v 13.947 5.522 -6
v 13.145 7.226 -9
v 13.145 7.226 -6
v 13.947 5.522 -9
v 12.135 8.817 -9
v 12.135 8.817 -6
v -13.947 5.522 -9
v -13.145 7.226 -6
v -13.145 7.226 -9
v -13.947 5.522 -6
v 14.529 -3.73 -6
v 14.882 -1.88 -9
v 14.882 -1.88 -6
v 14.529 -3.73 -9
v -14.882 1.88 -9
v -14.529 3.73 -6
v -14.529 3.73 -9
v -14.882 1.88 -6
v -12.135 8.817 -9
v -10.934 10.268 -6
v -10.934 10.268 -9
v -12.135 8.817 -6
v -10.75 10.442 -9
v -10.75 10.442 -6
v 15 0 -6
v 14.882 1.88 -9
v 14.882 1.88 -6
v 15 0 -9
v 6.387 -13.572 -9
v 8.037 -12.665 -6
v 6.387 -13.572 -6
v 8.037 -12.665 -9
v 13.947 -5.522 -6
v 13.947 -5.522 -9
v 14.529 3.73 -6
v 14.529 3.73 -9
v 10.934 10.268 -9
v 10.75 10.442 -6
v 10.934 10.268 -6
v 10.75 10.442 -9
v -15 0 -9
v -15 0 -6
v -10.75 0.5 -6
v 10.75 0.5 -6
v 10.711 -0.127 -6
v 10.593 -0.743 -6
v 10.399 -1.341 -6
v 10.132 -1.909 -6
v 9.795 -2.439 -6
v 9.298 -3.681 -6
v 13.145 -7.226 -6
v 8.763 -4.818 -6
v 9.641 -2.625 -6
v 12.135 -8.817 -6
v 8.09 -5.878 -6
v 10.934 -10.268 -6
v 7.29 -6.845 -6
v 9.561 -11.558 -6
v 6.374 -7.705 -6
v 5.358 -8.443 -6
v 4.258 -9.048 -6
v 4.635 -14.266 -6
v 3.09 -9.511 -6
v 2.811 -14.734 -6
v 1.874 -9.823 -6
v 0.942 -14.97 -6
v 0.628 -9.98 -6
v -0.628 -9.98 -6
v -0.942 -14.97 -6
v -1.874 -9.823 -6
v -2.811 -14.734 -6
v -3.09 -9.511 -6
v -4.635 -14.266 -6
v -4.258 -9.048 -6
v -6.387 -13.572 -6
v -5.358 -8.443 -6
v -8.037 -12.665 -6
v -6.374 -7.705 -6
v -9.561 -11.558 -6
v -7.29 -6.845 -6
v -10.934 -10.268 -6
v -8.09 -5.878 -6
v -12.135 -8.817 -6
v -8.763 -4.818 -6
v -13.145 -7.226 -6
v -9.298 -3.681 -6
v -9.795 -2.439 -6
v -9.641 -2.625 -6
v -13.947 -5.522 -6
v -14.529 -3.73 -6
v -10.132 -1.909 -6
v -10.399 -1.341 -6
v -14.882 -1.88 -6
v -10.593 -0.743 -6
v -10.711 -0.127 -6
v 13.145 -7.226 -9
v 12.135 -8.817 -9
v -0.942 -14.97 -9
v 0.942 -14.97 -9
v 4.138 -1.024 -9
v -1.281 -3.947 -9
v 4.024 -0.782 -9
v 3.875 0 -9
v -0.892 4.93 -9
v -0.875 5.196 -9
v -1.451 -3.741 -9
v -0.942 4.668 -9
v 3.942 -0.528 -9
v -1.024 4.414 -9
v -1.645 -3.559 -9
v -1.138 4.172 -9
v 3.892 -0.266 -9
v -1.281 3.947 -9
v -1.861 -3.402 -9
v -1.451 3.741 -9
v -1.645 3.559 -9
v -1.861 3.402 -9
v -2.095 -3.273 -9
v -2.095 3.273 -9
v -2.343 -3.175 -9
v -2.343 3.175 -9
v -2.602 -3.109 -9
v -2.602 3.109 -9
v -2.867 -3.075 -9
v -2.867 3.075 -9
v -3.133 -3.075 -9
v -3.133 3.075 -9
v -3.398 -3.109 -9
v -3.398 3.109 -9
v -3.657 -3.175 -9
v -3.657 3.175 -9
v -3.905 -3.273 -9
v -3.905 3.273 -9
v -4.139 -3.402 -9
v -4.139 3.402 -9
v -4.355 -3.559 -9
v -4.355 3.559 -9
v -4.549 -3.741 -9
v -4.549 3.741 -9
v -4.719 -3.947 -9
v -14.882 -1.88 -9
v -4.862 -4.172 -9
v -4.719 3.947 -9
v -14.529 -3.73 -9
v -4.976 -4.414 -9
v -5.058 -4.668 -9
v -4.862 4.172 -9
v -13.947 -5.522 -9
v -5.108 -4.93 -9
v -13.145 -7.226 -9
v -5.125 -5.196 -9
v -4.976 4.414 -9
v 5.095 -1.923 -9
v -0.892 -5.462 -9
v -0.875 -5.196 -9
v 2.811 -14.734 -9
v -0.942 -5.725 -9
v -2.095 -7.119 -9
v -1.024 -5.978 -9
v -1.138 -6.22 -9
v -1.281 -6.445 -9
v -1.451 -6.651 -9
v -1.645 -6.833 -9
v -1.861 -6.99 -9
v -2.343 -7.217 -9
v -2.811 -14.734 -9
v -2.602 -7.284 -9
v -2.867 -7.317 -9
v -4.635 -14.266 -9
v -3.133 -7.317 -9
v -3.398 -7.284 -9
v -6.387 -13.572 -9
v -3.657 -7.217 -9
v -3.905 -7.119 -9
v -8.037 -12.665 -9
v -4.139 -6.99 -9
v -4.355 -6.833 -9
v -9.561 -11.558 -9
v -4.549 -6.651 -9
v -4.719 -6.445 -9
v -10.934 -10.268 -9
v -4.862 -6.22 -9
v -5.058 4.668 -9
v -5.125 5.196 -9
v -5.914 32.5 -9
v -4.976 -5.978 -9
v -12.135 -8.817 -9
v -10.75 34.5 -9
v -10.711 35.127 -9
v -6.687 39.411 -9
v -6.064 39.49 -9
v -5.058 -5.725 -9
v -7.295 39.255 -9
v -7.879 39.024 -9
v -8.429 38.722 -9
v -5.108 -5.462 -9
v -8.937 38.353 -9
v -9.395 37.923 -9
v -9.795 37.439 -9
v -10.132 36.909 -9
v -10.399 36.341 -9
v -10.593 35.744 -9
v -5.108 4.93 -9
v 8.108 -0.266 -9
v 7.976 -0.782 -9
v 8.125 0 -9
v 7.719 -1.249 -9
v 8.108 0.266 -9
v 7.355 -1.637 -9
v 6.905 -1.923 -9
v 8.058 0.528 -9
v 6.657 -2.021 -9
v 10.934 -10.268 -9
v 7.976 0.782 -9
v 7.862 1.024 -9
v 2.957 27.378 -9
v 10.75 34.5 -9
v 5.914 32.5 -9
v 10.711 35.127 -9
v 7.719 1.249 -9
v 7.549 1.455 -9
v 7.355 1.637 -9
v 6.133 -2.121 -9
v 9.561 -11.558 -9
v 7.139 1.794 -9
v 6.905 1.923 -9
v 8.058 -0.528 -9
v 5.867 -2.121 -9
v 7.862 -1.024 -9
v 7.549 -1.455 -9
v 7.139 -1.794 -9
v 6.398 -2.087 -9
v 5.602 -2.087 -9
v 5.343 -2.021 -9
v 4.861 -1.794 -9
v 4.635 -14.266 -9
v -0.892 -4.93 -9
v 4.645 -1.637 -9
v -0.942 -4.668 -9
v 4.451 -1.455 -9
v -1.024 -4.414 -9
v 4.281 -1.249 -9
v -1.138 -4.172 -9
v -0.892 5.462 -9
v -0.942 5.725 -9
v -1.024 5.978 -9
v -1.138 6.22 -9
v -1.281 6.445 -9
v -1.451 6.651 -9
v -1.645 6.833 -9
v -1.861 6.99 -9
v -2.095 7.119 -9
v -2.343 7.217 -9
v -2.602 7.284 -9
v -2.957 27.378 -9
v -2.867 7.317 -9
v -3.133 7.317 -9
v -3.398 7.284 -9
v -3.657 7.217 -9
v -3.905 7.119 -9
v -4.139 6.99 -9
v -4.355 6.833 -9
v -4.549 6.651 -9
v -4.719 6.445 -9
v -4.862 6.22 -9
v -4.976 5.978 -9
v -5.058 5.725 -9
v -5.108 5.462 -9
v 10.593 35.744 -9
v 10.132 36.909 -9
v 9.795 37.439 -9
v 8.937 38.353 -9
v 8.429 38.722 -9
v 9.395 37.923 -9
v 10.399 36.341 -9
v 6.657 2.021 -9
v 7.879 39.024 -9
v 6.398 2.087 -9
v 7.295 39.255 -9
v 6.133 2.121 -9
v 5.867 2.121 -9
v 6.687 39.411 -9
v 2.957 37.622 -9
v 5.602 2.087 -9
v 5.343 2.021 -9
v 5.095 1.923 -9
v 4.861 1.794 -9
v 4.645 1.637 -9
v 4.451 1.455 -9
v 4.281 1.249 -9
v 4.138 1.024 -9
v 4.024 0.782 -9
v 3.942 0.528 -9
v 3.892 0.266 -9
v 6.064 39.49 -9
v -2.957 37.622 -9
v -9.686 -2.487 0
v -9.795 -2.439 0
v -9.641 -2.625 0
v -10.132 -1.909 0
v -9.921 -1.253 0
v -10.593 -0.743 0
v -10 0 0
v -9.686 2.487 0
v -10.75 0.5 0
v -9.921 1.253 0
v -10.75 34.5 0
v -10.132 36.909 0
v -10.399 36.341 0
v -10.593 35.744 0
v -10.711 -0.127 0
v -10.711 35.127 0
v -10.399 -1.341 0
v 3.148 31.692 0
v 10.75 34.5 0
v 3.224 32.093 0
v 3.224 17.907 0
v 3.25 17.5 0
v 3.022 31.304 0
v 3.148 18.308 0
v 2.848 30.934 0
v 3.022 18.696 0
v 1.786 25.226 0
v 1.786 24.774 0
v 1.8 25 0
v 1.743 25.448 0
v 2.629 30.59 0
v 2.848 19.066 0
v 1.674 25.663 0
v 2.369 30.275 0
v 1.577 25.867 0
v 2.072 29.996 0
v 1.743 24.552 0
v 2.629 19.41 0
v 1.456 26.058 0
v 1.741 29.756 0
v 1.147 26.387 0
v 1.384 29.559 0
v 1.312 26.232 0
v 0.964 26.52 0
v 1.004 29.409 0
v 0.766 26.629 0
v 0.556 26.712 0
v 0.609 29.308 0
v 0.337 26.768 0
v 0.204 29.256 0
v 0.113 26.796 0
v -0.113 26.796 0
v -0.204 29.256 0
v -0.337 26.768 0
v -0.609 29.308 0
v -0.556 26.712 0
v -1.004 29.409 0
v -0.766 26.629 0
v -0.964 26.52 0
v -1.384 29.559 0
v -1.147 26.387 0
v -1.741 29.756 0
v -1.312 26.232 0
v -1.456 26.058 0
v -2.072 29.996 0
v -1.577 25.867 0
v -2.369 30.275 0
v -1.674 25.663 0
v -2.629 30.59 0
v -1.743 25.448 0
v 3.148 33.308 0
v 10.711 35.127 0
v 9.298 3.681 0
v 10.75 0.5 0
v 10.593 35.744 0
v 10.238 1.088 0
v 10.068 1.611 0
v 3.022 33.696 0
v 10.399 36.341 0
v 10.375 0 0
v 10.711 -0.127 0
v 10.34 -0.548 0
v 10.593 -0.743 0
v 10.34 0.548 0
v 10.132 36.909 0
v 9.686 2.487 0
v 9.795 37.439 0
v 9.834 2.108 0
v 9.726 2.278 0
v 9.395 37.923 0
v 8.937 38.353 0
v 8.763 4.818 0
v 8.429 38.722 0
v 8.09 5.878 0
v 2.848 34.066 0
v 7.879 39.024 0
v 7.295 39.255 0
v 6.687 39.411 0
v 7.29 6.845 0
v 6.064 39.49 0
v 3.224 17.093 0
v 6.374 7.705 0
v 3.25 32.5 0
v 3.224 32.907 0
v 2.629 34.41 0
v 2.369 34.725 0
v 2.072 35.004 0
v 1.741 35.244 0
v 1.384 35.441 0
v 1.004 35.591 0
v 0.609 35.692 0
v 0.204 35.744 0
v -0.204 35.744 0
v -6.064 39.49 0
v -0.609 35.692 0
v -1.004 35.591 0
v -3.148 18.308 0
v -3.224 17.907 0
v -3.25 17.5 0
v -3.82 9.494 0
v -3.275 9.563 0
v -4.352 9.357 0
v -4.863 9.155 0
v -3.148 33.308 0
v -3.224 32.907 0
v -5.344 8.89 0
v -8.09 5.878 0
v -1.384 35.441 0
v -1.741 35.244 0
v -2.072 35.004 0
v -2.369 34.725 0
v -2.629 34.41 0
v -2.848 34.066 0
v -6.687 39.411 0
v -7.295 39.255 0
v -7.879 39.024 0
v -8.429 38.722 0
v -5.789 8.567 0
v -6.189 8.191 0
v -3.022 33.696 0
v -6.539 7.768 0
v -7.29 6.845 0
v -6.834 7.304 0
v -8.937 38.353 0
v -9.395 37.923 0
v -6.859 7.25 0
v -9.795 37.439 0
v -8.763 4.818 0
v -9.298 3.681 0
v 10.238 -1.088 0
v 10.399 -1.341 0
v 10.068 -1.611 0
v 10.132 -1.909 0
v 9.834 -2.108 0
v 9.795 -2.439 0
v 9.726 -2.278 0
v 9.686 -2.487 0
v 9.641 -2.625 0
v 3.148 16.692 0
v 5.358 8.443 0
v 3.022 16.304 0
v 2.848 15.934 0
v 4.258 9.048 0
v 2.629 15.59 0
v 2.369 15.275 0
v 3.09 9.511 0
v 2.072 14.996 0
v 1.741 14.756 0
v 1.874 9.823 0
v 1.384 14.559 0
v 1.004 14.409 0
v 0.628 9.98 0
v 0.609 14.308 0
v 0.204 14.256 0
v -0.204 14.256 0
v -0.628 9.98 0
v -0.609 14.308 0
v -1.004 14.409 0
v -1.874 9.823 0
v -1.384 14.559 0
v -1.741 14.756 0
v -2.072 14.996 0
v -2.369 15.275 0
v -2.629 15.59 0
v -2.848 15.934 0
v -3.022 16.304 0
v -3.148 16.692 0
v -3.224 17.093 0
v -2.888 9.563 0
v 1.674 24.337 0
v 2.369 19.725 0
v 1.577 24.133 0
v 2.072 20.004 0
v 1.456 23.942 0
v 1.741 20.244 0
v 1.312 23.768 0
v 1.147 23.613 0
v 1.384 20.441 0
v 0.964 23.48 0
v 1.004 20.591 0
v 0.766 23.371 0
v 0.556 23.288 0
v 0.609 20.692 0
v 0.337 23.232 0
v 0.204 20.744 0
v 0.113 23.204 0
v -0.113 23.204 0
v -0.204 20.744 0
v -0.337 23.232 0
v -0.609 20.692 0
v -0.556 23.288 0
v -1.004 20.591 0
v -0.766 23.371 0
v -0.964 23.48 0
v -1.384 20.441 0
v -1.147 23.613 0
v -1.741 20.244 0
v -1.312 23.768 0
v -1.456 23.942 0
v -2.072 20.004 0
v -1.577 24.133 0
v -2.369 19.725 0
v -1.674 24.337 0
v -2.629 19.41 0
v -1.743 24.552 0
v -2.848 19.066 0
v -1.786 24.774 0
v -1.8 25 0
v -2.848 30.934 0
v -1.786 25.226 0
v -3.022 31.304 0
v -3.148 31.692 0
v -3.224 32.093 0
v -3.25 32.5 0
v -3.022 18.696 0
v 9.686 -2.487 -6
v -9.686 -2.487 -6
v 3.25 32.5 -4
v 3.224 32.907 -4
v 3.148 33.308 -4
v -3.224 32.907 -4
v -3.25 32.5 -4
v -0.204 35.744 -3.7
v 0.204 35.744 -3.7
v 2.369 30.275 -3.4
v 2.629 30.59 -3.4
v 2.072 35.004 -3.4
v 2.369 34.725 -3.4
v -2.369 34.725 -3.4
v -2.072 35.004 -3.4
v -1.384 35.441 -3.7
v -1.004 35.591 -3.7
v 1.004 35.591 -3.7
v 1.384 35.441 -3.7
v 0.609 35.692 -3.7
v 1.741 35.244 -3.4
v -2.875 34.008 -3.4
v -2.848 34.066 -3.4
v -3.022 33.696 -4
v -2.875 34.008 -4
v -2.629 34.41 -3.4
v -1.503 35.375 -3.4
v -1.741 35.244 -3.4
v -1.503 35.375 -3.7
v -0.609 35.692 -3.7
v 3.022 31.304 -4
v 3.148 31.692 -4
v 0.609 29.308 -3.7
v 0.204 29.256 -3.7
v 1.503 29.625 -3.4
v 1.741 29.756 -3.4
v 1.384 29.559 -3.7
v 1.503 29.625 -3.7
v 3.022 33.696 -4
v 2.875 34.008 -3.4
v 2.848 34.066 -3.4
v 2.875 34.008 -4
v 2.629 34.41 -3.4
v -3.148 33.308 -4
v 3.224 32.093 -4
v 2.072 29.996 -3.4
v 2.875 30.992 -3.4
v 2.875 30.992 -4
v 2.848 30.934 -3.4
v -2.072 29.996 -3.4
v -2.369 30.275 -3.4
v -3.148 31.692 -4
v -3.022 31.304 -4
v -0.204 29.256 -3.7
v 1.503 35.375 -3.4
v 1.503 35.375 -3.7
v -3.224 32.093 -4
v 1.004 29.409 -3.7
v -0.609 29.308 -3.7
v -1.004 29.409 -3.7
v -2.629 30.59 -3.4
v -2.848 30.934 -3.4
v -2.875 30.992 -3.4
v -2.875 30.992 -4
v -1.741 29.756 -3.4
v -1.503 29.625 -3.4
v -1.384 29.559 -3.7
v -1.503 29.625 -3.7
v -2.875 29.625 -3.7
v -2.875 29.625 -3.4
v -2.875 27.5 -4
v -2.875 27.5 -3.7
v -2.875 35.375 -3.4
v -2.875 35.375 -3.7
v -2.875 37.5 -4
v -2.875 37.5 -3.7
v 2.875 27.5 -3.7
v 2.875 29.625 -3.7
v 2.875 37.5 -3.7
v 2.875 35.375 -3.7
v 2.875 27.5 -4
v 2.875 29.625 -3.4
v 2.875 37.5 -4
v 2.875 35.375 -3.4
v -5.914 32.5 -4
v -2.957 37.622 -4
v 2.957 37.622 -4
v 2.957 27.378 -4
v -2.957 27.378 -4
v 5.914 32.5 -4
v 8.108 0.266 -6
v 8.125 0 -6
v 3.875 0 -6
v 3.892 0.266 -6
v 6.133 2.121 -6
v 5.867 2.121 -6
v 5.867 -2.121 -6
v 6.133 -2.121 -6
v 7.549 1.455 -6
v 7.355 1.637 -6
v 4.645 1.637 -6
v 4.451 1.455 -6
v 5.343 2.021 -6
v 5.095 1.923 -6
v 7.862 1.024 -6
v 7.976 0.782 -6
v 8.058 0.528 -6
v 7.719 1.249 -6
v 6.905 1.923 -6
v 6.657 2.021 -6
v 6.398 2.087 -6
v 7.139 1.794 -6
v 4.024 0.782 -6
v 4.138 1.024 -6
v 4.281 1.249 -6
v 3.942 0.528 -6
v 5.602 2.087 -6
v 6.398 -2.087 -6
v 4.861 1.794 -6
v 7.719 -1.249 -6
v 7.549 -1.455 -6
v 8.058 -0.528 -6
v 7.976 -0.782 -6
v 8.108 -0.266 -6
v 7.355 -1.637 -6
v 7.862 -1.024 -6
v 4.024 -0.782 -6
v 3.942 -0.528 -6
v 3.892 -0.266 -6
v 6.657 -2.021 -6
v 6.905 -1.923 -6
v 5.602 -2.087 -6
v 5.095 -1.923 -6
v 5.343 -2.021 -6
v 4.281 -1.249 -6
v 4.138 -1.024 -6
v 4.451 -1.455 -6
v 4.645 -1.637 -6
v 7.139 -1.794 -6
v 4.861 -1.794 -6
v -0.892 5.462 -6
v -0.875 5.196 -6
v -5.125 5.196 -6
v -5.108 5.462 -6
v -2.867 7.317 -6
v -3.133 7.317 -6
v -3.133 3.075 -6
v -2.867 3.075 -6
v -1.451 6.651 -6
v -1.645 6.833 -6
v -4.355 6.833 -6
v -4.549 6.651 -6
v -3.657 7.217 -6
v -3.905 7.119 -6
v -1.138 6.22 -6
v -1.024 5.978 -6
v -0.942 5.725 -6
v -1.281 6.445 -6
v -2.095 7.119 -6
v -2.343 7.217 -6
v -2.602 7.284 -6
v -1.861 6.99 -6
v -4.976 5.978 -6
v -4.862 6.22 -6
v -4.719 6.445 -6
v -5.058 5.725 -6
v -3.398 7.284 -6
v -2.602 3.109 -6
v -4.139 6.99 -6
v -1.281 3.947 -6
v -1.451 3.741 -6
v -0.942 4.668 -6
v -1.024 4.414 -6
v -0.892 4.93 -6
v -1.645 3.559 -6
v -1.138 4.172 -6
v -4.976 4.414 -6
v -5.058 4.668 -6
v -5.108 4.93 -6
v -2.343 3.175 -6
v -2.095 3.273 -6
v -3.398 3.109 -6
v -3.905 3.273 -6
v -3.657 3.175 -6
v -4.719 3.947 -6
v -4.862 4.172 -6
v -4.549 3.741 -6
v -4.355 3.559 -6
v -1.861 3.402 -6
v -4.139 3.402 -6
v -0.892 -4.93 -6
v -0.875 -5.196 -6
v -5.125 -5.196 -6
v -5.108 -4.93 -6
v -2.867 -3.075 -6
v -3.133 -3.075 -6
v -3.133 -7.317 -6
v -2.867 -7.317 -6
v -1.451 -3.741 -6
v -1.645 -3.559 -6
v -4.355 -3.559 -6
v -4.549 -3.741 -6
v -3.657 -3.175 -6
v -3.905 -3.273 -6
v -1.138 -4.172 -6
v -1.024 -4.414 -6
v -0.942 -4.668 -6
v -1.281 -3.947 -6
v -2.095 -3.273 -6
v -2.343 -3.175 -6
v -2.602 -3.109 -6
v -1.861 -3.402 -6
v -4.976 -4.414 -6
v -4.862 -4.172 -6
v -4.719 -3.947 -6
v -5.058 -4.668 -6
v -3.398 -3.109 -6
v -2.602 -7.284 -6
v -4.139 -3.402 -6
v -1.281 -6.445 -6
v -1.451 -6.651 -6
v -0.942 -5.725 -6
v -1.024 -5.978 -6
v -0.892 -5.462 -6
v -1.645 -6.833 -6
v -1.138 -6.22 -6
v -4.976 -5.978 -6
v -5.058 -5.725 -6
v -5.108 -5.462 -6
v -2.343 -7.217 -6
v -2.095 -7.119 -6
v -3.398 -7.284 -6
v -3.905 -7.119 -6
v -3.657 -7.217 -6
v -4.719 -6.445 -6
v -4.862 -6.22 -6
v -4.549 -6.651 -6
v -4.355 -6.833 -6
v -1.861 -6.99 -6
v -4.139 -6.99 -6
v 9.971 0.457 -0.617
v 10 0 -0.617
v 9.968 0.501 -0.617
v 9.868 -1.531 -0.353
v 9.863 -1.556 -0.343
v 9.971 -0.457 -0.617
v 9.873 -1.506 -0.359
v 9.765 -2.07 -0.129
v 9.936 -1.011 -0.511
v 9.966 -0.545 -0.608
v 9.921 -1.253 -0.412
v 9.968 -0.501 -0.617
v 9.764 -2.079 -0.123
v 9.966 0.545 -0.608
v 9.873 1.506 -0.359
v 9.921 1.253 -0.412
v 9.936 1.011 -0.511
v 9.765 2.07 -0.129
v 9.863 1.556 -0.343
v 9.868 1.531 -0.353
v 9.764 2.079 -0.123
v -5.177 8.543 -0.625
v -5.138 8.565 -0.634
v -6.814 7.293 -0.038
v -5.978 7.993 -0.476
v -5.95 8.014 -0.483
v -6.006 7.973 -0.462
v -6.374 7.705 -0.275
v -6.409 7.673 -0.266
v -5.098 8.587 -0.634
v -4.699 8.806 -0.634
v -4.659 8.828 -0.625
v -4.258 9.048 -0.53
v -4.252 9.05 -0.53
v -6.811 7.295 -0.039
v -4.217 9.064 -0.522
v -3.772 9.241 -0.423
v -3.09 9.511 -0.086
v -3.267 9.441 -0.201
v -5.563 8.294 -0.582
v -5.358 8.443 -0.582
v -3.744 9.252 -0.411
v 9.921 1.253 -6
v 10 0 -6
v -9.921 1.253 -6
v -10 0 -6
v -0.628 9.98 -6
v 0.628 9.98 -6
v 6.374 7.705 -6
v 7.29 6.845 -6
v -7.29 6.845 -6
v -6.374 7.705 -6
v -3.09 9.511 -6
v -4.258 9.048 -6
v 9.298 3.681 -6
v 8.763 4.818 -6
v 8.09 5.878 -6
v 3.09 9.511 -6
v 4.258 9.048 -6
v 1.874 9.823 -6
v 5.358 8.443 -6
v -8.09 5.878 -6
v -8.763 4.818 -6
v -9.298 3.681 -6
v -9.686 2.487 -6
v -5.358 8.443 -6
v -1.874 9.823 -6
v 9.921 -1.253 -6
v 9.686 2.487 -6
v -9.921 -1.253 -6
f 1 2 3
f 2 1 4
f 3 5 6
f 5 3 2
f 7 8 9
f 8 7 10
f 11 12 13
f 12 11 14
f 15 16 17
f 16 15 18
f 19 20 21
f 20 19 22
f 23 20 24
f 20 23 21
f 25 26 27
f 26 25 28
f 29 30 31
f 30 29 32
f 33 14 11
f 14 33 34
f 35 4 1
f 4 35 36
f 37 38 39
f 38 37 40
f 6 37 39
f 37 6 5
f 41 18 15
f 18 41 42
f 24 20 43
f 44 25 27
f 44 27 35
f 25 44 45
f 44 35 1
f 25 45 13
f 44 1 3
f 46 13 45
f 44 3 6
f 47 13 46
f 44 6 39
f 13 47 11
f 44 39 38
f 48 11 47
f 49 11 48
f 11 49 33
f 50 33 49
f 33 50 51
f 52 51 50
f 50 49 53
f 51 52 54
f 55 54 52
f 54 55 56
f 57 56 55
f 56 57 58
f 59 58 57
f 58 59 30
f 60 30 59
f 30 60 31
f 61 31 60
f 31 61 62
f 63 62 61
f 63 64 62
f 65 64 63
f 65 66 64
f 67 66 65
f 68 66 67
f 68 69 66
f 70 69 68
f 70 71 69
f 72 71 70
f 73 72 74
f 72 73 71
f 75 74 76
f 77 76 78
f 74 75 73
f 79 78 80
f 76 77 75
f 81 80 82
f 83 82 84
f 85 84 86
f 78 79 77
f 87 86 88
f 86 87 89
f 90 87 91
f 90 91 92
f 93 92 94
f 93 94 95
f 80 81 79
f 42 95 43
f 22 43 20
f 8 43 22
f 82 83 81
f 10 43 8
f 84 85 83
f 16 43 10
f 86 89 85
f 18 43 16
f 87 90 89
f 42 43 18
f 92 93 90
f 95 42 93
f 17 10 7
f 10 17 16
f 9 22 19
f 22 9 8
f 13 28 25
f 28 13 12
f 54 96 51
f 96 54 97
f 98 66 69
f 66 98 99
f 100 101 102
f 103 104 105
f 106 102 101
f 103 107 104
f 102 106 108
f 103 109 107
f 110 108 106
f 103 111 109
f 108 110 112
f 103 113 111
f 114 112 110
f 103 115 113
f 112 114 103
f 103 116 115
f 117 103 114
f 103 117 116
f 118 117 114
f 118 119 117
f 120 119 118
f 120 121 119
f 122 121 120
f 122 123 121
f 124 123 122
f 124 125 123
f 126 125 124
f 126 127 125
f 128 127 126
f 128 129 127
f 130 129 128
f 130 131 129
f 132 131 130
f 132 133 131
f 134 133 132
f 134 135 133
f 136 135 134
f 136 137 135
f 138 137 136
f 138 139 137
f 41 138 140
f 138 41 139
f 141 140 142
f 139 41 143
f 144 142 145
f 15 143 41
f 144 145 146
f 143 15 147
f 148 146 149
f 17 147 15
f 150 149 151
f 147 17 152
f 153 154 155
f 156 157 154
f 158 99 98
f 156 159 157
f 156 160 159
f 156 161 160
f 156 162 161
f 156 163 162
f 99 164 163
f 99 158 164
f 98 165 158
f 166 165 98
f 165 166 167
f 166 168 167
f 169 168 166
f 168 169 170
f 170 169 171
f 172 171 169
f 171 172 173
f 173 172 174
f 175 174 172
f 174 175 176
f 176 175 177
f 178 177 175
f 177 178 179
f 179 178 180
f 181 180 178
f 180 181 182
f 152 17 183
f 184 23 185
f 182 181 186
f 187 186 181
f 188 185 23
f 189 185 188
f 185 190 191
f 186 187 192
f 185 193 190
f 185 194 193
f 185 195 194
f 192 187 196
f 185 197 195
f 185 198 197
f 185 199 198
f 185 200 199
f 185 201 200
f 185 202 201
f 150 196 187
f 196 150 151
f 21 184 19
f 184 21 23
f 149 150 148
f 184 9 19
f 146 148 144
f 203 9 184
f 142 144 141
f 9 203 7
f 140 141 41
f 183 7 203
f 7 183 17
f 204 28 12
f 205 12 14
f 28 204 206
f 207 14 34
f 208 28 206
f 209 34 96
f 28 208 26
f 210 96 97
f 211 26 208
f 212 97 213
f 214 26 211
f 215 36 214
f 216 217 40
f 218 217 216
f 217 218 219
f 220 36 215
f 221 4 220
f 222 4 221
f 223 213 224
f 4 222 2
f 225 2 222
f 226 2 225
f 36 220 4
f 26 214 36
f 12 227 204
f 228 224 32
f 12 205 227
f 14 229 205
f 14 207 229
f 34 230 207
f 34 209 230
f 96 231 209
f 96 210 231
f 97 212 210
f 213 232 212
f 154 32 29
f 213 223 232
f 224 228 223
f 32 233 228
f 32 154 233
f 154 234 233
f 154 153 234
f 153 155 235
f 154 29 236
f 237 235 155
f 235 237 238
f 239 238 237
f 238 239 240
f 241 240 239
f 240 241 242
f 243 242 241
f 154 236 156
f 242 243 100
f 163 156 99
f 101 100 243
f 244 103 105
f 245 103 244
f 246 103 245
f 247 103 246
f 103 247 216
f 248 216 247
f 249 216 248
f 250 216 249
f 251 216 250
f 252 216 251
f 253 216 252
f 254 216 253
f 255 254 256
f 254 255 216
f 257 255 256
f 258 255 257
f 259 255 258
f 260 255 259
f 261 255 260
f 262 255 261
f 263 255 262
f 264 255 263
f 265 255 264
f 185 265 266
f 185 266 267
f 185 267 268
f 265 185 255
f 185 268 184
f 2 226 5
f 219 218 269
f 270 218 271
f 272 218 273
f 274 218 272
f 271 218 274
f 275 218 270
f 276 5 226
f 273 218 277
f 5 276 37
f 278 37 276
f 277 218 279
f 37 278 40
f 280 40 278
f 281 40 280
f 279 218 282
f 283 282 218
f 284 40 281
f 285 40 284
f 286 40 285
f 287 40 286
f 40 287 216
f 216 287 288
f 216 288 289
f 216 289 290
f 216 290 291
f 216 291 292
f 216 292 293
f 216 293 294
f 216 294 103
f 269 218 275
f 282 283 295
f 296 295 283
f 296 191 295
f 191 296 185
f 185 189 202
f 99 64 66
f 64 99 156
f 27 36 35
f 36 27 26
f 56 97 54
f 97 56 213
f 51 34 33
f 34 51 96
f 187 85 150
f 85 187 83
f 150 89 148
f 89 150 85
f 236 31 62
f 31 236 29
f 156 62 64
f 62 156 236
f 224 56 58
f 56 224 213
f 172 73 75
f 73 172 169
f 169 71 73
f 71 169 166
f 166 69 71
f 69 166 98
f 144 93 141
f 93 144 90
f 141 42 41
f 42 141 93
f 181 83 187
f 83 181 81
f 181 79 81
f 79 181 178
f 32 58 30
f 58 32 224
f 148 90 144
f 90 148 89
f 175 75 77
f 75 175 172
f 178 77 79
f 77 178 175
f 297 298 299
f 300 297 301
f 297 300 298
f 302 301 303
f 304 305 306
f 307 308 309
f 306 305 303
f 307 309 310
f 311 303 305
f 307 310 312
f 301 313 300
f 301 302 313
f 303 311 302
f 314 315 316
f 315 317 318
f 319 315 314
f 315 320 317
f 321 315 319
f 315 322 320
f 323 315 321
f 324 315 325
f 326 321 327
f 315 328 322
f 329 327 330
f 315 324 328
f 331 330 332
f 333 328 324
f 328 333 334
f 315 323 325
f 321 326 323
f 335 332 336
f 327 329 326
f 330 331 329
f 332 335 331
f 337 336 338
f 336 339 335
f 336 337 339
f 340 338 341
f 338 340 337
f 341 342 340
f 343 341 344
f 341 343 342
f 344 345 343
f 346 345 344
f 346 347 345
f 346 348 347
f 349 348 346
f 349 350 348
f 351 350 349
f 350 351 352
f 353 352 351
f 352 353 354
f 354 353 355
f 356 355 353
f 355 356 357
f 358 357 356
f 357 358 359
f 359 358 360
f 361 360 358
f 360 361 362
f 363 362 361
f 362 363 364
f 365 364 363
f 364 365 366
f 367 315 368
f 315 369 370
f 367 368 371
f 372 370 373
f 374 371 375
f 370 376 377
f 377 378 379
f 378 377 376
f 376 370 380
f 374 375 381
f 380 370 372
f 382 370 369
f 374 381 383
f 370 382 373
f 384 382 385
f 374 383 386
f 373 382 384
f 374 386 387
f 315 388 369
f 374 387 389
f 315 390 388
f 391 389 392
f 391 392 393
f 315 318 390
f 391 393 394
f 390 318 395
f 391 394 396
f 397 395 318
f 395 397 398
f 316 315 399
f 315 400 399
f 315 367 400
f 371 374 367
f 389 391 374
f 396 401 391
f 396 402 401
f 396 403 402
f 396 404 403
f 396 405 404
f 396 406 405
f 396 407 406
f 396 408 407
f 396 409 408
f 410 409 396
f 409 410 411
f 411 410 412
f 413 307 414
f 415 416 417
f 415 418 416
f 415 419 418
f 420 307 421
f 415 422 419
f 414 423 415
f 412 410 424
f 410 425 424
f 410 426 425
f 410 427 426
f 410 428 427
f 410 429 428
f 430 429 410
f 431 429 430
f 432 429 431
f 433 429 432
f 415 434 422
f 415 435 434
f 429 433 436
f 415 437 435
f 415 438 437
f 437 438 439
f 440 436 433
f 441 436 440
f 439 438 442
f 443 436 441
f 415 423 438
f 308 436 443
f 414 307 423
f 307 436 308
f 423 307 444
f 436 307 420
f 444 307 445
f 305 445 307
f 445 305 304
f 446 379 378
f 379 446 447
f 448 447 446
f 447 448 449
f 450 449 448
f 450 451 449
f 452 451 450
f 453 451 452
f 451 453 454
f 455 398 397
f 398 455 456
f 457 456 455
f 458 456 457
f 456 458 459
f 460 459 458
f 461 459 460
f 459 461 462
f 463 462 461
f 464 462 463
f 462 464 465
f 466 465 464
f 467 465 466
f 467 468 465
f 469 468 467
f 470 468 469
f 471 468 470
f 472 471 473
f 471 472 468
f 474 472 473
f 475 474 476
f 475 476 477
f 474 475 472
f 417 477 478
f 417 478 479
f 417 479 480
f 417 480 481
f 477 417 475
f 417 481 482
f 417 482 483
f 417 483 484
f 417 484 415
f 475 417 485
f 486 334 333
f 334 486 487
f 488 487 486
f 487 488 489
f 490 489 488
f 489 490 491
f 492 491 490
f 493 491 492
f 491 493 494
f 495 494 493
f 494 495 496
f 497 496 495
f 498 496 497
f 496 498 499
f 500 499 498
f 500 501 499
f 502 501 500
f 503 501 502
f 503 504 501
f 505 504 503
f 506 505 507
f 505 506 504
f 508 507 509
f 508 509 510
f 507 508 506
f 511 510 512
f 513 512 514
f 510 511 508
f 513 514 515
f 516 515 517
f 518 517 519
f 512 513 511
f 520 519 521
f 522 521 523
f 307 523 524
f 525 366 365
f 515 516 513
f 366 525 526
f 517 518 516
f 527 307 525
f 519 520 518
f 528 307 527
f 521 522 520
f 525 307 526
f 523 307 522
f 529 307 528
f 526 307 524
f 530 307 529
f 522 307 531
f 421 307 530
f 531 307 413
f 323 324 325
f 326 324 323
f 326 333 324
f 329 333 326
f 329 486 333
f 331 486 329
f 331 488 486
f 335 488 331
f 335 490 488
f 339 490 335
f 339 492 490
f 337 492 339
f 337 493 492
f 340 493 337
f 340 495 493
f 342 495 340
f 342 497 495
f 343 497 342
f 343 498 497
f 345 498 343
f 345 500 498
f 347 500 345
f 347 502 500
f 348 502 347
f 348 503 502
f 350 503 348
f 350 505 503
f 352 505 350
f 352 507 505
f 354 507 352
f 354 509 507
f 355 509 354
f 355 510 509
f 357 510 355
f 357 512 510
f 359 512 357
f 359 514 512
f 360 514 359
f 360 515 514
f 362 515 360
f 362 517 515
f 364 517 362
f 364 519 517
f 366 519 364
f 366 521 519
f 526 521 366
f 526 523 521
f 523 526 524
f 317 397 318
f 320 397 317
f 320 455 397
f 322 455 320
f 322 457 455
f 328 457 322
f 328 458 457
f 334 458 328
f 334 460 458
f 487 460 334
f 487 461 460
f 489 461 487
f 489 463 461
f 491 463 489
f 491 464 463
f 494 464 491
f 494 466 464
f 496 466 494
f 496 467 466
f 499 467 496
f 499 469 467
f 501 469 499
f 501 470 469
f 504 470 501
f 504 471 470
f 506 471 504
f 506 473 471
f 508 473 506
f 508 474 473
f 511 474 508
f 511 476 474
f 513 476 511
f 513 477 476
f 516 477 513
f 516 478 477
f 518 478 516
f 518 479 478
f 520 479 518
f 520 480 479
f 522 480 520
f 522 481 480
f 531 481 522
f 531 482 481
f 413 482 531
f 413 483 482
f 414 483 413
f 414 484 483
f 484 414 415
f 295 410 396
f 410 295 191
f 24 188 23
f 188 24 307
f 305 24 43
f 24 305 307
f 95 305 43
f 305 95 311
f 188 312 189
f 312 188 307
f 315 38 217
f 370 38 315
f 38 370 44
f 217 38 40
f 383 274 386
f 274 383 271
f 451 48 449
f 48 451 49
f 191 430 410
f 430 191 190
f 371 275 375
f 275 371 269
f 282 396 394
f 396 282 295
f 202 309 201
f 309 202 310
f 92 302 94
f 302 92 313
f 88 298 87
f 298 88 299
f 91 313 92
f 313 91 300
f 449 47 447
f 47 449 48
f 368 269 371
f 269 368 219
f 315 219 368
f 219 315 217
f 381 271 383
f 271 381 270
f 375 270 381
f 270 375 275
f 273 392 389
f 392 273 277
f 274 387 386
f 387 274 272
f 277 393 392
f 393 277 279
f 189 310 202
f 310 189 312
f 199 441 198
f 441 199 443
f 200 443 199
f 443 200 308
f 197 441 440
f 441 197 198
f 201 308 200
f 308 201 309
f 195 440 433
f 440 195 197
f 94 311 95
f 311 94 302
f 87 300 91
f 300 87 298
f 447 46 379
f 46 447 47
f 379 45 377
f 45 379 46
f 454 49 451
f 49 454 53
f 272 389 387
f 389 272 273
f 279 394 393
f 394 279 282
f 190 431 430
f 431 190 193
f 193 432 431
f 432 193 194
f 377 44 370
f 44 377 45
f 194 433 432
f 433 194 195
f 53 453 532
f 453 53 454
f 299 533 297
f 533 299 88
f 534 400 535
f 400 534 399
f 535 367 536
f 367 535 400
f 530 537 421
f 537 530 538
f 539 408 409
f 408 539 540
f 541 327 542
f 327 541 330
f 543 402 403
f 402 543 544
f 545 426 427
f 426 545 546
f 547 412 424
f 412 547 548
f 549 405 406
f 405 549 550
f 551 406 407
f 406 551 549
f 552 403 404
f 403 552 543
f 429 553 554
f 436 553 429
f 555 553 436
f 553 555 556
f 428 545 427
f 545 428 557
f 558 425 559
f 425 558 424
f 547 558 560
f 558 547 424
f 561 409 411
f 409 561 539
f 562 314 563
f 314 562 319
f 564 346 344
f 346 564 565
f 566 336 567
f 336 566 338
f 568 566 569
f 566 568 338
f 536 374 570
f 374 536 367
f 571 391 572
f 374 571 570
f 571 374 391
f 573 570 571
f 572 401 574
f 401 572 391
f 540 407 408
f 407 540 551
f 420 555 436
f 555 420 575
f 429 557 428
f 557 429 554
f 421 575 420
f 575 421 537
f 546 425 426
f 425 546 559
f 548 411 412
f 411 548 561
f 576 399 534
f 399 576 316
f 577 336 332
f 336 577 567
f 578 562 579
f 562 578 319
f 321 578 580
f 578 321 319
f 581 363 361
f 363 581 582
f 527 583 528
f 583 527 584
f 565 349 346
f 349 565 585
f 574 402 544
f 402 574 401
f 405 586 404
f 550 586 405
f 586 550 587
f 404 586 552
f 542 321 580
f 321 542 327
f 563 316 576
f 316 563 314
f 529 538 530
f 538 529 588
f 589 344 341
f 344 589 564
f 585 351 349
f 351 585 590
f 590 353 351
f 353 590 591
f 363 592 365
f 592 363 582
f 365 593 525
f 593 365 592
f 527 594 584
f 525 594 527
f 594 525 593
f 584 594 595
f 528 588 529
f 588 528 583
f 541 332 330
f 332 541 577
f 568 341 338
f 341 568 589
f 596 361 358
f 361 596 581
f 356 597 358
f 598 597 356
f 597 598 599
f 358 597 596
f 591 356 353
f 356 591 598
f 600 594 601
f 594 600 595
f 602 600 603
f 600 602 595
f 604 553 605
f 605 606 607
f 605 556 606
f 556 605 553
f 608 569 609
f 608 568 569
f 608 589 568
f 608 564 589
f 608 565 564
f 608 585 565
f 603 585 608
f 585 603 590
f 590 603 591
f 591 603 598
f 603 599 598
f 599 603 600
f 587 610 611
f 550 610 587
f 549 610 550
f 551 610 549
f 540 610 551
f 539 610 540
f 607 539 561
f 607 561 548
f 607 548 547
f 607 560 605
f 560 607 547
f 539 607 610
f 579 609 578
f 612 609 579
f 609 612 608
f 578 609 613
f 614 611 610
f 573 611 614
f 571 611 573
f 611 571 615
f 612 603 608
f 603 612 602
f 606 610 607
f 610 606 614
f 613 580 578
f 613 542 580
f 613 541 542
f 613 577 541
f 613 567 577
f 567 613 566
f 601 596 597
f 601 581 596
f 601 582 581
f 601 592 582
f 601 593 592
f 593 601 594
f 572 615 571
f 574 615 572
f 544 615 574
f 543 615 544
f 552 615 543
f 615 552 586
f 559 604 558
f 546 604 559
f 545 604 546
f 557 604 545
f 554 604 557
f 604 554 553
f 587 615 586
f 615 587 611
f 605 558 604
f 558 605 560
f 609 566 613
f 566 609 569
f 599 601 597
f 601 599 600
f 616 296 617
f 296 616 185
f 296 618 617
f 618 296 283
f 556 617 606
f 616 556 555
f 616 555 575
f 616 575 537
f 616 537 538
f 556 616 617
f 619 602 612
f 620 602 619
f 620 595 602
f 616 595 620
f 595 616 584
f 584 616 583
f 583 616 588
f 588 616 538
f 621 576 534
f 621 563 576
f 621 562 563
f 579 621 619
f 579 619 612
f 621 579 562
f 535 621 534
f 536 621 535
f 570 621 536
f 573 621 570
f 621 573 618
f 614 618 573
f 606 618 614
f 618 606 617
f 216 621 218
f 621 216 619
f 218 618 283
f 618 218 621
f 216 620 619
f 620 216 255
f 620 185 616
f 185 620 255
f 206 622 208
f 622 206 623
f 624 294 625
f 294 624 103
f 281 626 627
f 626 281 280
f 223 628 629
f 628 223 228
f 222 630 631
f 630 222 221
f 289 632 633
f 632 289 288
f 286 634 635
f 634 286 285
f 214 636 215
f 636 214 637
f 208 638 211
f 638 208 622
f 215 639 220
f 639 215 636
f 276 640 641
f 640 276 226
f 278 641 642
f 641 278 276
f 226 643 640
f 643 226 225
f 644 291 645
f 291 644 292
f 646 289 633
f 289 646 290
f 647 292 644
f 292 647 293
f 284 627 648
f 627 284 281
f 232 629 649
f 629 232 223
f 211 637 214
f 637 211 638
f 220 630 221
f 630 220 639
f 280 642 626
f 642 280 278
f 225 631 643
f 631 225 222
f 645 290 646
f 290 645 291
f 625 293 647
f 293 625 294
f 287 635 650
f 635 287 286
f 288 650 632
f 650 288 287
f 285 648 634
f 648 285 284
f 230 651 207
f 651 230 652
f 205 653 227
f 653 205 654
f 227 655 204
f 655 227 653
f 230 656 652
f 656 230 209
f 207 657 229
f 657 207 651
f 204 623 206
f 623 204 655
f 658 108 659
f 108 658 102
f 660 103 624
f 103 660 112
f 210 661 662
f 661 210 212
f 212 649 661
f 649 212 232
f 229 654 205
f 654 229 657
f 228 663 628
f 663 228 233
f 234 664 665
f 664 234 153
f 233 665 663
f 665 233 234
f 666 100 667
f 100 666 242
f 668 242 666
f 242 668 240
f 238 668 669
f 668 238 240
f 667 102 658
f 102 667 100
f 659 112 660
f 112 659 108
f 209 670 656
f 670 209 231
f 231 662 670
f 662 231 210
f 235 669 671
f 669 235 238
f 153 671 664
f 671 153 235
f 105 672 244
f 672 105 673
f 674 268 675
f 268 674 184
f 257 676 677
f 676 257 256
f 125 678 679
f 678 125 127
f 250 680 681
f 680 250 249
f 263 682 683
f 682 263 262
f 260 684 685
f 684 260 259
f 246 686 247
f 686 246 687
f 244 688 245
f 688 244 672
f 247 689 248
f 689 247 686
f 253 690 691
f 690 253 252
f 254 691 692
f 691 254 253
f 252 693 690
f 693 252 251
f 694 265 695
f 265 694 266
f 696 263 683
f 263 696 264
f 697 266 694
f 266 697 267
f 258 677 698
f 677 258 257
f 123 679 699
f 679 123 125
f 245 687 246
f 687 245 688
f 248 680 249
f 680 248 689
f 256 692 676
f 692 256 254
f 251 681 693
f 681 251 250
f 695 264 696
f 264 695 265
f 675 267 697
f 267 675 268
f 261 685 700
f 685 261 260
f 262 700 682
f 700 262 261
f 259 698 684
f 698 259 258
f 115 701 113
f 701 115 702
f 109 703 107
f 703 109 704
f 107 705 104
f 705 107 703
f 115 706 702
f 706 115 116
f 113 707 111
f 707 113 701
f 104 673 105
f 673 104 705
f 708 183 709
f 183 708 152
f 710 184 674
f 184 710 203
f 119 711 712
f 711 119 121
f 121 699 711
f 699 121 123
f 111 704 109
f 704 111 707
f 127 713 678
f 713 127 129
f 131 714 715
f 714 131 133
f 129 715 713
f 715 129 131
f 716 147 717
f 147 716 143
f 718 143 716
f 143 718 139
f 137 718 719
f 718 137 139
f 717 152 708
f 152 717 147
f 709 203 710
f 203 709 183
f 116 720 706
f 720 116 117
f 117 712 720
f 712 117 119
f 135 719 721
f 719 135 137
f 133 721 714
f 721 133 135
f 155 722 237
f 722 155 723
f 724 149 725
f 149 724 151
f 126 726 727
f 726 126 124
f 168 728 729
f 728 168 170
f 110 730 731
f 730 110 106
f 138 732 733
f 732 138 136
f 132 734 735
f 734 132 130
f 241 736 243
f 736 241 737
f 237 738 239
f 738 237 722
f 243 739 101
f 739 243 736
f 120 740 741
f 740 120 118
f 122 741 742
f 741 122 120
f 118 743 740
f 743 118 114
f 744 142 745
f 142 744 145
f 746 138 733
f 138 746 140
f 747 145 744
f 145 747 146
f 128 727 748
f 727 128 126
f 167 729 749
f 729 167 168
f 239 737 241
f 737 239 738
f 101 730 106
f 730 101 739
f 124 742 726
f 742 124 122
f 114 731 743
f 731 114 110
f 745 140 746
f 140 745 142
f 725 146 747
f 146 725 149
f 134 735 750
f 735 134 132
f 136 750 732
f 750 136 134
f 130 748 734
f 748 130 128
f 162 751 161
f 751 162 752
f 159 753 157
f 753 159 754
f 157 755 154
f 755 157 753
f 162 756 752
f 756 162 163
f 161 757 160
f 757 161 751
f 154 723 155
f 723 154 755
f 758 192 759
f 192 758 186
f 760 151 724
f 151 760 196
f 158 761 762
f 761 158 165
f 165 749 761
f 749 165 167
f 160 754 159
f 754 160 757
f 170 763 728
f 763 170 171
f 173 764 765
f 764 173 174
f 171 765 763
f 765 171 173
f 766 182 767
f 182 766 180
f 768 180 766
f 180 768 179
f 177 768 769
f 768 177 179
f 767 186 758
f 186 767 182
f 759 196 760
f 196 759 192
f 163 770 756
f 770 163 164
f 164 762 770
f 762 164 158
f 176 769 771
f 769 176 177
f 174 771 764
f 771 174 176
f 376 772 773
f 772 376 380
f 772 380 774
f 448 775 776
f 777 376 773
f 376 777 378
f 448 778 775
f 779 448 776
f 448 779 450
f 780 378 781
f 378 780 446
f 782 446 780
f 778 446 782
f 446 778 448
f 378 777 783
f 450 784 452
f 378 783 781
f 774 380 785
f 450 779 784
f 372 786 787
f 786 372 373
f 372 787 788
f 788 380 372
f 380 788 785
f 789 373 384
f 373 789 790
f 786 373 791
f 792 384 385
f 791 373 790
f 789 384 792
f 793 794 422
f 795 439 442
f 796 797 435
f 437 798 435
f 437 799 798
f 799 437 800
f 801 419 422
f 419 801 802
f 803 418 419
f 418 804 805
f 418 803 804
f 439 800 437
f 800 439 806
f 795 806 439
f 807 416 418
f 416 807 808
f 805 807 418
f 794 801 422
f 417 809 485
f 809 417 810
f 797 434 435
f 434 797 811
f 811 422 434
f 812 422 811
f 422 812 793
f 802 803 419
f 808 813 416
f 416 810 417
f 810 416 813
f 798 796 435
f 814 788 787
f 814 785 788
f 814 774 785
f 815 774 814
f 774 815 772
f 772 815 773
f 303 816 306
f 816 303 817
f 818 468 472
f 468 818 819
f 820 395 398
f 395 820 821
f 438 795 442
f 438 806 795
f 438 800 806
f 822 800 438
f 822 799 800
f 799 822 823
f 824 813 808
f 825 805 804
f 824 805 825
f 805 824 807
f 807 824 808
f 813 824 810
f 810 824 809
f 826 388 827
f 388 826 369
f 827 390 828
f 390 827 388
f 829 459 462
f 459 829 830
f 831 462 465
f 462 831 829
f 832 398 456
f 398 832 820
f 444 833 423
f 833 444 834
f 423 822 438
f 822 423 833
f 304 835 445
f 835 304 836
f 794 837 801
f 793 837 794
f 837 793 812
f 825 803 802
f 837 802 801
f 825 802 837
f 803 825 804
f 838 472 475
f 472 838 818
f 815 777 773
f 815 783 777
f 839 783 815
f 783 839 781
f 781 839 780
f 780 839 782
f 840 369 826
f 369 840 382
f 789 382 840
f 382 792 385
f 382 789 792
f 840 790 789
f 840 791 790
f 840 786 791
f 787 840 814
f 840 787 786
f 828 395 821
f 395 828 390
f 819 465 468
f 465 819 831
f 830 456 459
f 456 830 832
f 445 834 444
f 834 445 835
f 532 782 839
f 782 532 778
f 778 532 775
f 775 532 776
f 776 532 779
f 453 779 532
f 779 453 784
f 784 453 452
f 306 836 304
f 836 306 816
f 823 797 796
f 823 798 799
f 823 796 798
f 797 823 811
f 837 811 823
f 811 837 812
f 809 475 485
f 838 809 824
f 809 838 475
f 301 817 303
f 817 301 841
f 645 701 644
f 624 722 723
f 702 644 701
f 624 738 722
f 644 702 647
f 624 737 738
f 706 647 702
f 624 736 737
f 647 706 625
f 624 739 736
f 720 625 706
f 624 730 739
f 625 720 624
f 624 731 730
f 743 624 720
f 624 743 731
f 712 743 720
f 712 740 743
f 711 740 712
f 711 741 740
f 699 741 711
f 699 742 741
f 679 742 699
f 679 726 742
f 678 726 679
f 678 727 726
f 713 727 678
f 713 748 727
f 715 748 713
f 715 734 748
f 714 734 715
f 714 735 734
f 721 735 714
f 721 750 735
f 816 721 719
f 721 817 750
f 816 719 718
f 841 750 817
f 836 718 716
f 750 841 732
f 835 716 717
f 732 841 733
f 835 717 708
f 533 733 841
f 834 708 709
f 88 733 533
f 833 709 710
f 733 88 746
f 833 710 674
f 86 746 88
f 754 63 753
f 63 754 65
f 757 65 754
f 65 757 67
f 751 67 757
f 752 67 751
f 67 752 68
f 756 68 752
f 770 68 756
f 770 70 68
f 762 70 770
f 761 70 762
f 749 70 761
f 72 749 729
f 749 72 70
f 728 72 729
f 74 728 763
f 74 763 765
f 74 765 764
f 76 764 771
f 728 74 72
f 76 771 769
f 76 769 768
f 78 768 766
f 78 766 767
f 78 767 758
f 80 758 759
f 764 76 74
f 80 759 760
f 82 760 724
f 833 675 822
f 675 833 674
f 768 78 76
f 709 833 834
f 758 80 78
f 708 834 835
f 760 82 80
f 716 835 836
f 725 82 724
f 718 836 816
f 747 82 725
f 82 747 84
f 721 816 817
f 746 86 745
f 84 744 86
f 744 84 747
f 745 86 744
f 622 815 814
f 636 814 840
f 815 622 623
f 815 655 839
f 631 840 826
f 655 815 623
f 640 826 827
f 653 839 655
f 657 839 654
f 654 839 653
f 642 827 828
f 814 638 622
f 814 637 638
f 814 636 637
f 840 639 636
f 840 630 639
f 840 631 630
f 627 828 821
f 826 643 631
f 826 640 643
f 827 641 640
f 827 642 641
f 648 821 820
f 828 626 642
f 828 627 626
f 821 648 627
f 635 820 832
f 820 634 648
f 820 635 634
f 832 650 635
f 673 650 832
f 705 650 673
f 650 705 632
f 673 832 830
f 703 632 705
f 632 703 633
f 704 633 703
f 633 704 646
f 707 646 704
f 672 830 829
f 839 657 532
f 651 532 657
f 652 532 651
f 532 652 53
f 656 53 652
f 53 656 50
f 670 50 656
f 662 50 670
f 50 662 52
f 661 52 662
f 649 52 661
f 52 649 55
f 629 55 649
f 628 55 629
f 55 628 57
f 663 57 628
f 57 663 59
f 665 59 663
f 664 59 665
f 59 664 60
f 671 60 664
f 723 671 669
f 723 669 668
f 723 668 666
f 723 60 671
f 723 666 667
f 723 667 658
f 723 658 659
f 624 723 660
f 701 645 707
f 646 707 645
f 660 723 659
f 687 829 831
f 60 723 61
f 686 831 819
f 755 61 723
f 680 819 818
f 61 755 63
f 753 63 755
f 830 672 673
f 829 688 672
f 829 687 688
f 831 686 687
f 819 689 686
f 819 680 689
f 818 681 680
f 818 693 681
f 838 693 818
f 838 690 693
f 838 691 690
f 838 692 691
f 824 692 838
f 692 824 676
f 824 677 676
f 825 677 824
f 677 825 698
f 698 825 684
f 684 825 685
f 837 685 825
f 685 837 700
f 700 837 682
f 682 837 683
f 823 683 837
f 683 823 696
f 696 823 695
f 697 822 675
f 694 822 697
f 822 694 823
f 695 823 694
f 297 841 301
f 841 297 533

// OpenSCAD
$fn = 50;


difference() {
	union() {
		translate(v = [0, 0, -9.0000000000]) {
			cylinder(h = 3, r = 15.0000000000);
		}
		translate(v = [0, 17.5000000000, -9]) {
			hull() {
				translate(v = [-2.0000000000, 17.0000000000, 0]) {
					cylinder(h = 9, r = 5);
				}
				translate(v = [2.0000000000, 17.0000000000, 0]) {
					cylinder(h = 9, r = 5);
				}
				translate(v = [-2.0000000000, -17.0000000000, 0]) {
					cylinder(h = 9, r = 5);
				}
				translate(v = [2.0000000000, -17.0000000000, 0]) {
					cylinder(h = 9, r = 5);
				}
			}
		}
		translate(v = [0, 17.5000000000, -9]) {
			hull() {
				translate(v = [-5.7500000000, 17.0000000000, 0]) {
					cylinder(h = 9, r = 5);
				}
				translate(v = [5.7500000000, 17.0000000000, 0]) {
					cylinder(h = 9, r = 5);
				}
				translate(v = [-5.7500000000, -17.0000000000, 0]) {
					cylinder(h = 9, r = 5);
				}
				translate(v = [5.7500000000, -17.0000000000, 0]) {
					cylinder(h = 9, r = 5);
				}
			}
		}
		translate(v = [0, 0, -9.0000000000]) {
			cylinder(h = 9, r = 10.0000000000);
		}
	}
	union() {
		translate(v = [0, 32.5000000000, 0]) {
			rotate(a = [0, 0, 0]) {
				difference() {
					union() {
						translate(v = [0, 0, -50.0000000000]) {
							cylinder(h = 100, r = 3.2500000000);
						}
					}
					union();
				}
			}
		}
		translate(v = [0, 32.5000000000, -9]) {
			rotate(a = [0, 0, 0]) {
				difference() {
					union() {
						translate(v = [-2.8750000000, -5.0000000000, -0.3000000000]) {
							cube(size = [5.7500000000, 10, 0.3000000000]);
						}
						translate(v = [-2.8750000000, -2.8750000000, -0.6000000000]) {
							cube(size = [5.7500000000, 5.7500000000, 0.3000000000]);
						}
						translate(v = [-2.8750000000, -5.0000000000, 5]) {
							cube(size = [5.7500000000, 10, 0.3000000000]);
						}
						translate(v = [-2.8750000000, -2.8750000000, 5.3000000000]) {
							cube(size = [5.7500000000, 5.7500000000, 0.3000000000]);
						}
						linear_extrude(height = 5) {
							polygon(points = [[5.9142500000, 0.0000000000], [2.9571250000, 5.1218907443], [-2.9571250000, 5.1218907443], [-5.9142500000, 0.0000000000], [-2.9571250000, -5.1218907443], [2.9571250000, -5.1218907443]]);
						}
						translate(v = [-2.8750000000, -5.0000000000, -0.3000000000]) {
							cube(size = [5.7500000000, 10, 0.3000000000]);
						}
						translate(v = [-2.8750000000, -2.8750000000, -0.6000000000]) {
							cube(size = [5.7500000000, 5.7500000000, 0.3000000000]);
						}
						translate(v = [-2.8750000000, -5.0000000000, 5]) {
							cube(size = [5.7500000000, 10, 0.3000000000]);
						}
						translate(v = [-2.8750000000, -2.8750000000, 5.3000000000]) {
							cube(size = [5.7500000000, 5.7500000000, 0.3000000000]);
						}
						translate(v = [-2.8750000000, -5.0000000000, -0.3000000000]) {
							cube(size = [5.7500000000, 10, 0.3000000000]);
						}
						translate(v = [-2.8750000000, -2.8750000000, -0.6000000000]) {
							cube(size = [5.7500000000, 5.7500000000, 0.3000000000]);
						}
						translate(v = [-2.8750000000, -5.0000000000, 5]) {
							cube(size = [5.7500000000, 10, 0.3000000000]);
						}
						translate(v = [-2.8750000000, -2.8750000000, 5.3000000000]) {
							cube(size = [5.7500000000, 5.7500000000, 0.3000000000]);
						}
					}
					union();
				}
			}
		}
		translate(v = [6.0000000000, 0.0000000000, 41]) {
			rotate(a = [0, 0, 0]) {
				difference() {
					union() {
						translate(v = [0, 0, -59.0000000000]) {
							cylinder(h = 59, r = 2.0000000000);
						}
						translate(v = [0, 0, -3]) {
							cylinder(h = 3, r1 = 2.1250000000, r2 = 3.7500000000);
						}
						translate(v = [0, 0, -59.0000000000]) {
							cylinder(h = 59, r = 2.1250000000);
						}
						translate(v = [0, 0, -59.0000000000]) {
							cylinder(h = 59, r = 2.0000000000);
						}
					}
					union();
				}
			}
		}
		translate(v = [-3.0000000000, 5.1961524227, 41]) {
			rotate(a = [0, 0, 0]) {
				difference() {
					union() {
						translate(v = [0, 0, -59.0000000000]) {
							cylinder(h = 59, r = 2.0000000000);
						}
						translate(v = [0, 0, -3]) {
							cylinder(h = 3, r1 = 2.1250000000, r2 = 3.7500000000);
						}
						translate(v = [0, 0, -59.0000000000]) {
							cylinder(h = 59, r = 2.1250000000);
						}
						translate(v = [0, 0, -59.0000000000]) {
							cylinder(h = 59, r = 2.0000000000);
						}
					}
					union();
				}
			}
		}
		translate(v = [-3.0000000000, -5.1961524227, 41]) {
			rotate(a = [0, 0, 0]) {
				difference() {
					union() {
						translate(v = [0, 0, -59.0000000000]) {
							cylinder(h = 59, r = 2.0000000000);
						}
						translate(v = [0, 0, -3]) {
							cylinder(h = 3, r1 = 2.1250000000, r2 = 3.7500000000);
						}
						translate(v = [0, 0, -59.0000000000]) {
							cylinder(h = 59, r = 2.1250000000);
						}
						translate(v = [0, 0, -59.0000000000]) {
							cylinder(h = 59, r = 2.0000000000);
						}
					}
					union();
				}
			}
		}
		translate(v = [6.0000000000, 0.0000000000, 0]) {
			rotate(a = [0, 0, 0]) {
				difference() {
					union() {
						#translate(v = [0, 0, -9.0000000000]) {
							cylinder(h = 9, r = 2.0000000000);
						}
						#translate(v = [0, 0, -3]) {
							cylinder(h = 3, r = 10.0000000000, r1 = 2.1250000000, r2 = 3.7500000000);
						}
						#translate(v = [0, 0, -9.0000000000]) {
							cylinder(h = 9, r = 2.1250000000);
						}
						#translate(v = [0, 0, -9.0000000000]) {
							cylinder(h = 9, r = 2.0000000000);
						}
					}
					union();
				}
			}
		}
		translate(v = [-3.0000000000, 5.1961524227, 0]) {
			rotate(a = [0, 0, 0]) {
				difference() {
					union() {
						#translate(v = [0, 0, -9.0000000000]) {
							cylinder(h = 9, r = 2.0000000000);
						}
						#translate(v = [0, 0, -3]) {
							cylinder(h = 3, r = 10.0000000000, r1 = 2.1250000000, r2 = 3.7500000000);
						}
						#translate(v = [0, 0, -9.0000000000]) {
							cylinder(h = 9, r = 2.1250000000);
						}
						#translate(v = [0, 0, -9.0000000000]) {
							cylinder(h = 9, r = 2.0000000000);
						}
					}
					union();
				}
			}
		}
		translate(v = [-3.0000000000, -5.1961524227, 0]) {
			rotate(a = [0, 0, 0]) {
				difference() {
					union() {
						#translate(v = [0, 0, -9.0000000000]) {
							cylinder(h = 9, r = 2.0000000000);
						}
						#translate(v = [0, 0, -3]) {
							cylinder(h = 3, r = 10.0000000000, r1 = 2.1250000000, r2 = 3.7500000000);
						}
						#translate(v = [0, 0, -9.0000000000]) {
							cylinder(h = 9, r = 2.1250000000);
						}
						#translate(v = [0, 0, -9.0000000000]) {
							cylinder(h = 9, r = 2.0000000000);
						}
					}
					union();
				}
			}
		}
		translate(v = [0, 0, -6.0000000000]) {
			cylinder(h = 100, r = 10.0000000000);
		}
		translate(v = [0.0000000000, 32.5000000000, 0]) {
			cylinder(h = 9, r = 3.2500000000);
		}
		translate(v = [0.0000000000, 17.5000000000, 0]) {
			cylinder(h = 9, r = 3.2500000000);
		}
		translate(v = [0.0000000000, 25.0000000000, 0]) {
			cylinder(h = 9, r = 1.8000000000);
		}
	}
}
